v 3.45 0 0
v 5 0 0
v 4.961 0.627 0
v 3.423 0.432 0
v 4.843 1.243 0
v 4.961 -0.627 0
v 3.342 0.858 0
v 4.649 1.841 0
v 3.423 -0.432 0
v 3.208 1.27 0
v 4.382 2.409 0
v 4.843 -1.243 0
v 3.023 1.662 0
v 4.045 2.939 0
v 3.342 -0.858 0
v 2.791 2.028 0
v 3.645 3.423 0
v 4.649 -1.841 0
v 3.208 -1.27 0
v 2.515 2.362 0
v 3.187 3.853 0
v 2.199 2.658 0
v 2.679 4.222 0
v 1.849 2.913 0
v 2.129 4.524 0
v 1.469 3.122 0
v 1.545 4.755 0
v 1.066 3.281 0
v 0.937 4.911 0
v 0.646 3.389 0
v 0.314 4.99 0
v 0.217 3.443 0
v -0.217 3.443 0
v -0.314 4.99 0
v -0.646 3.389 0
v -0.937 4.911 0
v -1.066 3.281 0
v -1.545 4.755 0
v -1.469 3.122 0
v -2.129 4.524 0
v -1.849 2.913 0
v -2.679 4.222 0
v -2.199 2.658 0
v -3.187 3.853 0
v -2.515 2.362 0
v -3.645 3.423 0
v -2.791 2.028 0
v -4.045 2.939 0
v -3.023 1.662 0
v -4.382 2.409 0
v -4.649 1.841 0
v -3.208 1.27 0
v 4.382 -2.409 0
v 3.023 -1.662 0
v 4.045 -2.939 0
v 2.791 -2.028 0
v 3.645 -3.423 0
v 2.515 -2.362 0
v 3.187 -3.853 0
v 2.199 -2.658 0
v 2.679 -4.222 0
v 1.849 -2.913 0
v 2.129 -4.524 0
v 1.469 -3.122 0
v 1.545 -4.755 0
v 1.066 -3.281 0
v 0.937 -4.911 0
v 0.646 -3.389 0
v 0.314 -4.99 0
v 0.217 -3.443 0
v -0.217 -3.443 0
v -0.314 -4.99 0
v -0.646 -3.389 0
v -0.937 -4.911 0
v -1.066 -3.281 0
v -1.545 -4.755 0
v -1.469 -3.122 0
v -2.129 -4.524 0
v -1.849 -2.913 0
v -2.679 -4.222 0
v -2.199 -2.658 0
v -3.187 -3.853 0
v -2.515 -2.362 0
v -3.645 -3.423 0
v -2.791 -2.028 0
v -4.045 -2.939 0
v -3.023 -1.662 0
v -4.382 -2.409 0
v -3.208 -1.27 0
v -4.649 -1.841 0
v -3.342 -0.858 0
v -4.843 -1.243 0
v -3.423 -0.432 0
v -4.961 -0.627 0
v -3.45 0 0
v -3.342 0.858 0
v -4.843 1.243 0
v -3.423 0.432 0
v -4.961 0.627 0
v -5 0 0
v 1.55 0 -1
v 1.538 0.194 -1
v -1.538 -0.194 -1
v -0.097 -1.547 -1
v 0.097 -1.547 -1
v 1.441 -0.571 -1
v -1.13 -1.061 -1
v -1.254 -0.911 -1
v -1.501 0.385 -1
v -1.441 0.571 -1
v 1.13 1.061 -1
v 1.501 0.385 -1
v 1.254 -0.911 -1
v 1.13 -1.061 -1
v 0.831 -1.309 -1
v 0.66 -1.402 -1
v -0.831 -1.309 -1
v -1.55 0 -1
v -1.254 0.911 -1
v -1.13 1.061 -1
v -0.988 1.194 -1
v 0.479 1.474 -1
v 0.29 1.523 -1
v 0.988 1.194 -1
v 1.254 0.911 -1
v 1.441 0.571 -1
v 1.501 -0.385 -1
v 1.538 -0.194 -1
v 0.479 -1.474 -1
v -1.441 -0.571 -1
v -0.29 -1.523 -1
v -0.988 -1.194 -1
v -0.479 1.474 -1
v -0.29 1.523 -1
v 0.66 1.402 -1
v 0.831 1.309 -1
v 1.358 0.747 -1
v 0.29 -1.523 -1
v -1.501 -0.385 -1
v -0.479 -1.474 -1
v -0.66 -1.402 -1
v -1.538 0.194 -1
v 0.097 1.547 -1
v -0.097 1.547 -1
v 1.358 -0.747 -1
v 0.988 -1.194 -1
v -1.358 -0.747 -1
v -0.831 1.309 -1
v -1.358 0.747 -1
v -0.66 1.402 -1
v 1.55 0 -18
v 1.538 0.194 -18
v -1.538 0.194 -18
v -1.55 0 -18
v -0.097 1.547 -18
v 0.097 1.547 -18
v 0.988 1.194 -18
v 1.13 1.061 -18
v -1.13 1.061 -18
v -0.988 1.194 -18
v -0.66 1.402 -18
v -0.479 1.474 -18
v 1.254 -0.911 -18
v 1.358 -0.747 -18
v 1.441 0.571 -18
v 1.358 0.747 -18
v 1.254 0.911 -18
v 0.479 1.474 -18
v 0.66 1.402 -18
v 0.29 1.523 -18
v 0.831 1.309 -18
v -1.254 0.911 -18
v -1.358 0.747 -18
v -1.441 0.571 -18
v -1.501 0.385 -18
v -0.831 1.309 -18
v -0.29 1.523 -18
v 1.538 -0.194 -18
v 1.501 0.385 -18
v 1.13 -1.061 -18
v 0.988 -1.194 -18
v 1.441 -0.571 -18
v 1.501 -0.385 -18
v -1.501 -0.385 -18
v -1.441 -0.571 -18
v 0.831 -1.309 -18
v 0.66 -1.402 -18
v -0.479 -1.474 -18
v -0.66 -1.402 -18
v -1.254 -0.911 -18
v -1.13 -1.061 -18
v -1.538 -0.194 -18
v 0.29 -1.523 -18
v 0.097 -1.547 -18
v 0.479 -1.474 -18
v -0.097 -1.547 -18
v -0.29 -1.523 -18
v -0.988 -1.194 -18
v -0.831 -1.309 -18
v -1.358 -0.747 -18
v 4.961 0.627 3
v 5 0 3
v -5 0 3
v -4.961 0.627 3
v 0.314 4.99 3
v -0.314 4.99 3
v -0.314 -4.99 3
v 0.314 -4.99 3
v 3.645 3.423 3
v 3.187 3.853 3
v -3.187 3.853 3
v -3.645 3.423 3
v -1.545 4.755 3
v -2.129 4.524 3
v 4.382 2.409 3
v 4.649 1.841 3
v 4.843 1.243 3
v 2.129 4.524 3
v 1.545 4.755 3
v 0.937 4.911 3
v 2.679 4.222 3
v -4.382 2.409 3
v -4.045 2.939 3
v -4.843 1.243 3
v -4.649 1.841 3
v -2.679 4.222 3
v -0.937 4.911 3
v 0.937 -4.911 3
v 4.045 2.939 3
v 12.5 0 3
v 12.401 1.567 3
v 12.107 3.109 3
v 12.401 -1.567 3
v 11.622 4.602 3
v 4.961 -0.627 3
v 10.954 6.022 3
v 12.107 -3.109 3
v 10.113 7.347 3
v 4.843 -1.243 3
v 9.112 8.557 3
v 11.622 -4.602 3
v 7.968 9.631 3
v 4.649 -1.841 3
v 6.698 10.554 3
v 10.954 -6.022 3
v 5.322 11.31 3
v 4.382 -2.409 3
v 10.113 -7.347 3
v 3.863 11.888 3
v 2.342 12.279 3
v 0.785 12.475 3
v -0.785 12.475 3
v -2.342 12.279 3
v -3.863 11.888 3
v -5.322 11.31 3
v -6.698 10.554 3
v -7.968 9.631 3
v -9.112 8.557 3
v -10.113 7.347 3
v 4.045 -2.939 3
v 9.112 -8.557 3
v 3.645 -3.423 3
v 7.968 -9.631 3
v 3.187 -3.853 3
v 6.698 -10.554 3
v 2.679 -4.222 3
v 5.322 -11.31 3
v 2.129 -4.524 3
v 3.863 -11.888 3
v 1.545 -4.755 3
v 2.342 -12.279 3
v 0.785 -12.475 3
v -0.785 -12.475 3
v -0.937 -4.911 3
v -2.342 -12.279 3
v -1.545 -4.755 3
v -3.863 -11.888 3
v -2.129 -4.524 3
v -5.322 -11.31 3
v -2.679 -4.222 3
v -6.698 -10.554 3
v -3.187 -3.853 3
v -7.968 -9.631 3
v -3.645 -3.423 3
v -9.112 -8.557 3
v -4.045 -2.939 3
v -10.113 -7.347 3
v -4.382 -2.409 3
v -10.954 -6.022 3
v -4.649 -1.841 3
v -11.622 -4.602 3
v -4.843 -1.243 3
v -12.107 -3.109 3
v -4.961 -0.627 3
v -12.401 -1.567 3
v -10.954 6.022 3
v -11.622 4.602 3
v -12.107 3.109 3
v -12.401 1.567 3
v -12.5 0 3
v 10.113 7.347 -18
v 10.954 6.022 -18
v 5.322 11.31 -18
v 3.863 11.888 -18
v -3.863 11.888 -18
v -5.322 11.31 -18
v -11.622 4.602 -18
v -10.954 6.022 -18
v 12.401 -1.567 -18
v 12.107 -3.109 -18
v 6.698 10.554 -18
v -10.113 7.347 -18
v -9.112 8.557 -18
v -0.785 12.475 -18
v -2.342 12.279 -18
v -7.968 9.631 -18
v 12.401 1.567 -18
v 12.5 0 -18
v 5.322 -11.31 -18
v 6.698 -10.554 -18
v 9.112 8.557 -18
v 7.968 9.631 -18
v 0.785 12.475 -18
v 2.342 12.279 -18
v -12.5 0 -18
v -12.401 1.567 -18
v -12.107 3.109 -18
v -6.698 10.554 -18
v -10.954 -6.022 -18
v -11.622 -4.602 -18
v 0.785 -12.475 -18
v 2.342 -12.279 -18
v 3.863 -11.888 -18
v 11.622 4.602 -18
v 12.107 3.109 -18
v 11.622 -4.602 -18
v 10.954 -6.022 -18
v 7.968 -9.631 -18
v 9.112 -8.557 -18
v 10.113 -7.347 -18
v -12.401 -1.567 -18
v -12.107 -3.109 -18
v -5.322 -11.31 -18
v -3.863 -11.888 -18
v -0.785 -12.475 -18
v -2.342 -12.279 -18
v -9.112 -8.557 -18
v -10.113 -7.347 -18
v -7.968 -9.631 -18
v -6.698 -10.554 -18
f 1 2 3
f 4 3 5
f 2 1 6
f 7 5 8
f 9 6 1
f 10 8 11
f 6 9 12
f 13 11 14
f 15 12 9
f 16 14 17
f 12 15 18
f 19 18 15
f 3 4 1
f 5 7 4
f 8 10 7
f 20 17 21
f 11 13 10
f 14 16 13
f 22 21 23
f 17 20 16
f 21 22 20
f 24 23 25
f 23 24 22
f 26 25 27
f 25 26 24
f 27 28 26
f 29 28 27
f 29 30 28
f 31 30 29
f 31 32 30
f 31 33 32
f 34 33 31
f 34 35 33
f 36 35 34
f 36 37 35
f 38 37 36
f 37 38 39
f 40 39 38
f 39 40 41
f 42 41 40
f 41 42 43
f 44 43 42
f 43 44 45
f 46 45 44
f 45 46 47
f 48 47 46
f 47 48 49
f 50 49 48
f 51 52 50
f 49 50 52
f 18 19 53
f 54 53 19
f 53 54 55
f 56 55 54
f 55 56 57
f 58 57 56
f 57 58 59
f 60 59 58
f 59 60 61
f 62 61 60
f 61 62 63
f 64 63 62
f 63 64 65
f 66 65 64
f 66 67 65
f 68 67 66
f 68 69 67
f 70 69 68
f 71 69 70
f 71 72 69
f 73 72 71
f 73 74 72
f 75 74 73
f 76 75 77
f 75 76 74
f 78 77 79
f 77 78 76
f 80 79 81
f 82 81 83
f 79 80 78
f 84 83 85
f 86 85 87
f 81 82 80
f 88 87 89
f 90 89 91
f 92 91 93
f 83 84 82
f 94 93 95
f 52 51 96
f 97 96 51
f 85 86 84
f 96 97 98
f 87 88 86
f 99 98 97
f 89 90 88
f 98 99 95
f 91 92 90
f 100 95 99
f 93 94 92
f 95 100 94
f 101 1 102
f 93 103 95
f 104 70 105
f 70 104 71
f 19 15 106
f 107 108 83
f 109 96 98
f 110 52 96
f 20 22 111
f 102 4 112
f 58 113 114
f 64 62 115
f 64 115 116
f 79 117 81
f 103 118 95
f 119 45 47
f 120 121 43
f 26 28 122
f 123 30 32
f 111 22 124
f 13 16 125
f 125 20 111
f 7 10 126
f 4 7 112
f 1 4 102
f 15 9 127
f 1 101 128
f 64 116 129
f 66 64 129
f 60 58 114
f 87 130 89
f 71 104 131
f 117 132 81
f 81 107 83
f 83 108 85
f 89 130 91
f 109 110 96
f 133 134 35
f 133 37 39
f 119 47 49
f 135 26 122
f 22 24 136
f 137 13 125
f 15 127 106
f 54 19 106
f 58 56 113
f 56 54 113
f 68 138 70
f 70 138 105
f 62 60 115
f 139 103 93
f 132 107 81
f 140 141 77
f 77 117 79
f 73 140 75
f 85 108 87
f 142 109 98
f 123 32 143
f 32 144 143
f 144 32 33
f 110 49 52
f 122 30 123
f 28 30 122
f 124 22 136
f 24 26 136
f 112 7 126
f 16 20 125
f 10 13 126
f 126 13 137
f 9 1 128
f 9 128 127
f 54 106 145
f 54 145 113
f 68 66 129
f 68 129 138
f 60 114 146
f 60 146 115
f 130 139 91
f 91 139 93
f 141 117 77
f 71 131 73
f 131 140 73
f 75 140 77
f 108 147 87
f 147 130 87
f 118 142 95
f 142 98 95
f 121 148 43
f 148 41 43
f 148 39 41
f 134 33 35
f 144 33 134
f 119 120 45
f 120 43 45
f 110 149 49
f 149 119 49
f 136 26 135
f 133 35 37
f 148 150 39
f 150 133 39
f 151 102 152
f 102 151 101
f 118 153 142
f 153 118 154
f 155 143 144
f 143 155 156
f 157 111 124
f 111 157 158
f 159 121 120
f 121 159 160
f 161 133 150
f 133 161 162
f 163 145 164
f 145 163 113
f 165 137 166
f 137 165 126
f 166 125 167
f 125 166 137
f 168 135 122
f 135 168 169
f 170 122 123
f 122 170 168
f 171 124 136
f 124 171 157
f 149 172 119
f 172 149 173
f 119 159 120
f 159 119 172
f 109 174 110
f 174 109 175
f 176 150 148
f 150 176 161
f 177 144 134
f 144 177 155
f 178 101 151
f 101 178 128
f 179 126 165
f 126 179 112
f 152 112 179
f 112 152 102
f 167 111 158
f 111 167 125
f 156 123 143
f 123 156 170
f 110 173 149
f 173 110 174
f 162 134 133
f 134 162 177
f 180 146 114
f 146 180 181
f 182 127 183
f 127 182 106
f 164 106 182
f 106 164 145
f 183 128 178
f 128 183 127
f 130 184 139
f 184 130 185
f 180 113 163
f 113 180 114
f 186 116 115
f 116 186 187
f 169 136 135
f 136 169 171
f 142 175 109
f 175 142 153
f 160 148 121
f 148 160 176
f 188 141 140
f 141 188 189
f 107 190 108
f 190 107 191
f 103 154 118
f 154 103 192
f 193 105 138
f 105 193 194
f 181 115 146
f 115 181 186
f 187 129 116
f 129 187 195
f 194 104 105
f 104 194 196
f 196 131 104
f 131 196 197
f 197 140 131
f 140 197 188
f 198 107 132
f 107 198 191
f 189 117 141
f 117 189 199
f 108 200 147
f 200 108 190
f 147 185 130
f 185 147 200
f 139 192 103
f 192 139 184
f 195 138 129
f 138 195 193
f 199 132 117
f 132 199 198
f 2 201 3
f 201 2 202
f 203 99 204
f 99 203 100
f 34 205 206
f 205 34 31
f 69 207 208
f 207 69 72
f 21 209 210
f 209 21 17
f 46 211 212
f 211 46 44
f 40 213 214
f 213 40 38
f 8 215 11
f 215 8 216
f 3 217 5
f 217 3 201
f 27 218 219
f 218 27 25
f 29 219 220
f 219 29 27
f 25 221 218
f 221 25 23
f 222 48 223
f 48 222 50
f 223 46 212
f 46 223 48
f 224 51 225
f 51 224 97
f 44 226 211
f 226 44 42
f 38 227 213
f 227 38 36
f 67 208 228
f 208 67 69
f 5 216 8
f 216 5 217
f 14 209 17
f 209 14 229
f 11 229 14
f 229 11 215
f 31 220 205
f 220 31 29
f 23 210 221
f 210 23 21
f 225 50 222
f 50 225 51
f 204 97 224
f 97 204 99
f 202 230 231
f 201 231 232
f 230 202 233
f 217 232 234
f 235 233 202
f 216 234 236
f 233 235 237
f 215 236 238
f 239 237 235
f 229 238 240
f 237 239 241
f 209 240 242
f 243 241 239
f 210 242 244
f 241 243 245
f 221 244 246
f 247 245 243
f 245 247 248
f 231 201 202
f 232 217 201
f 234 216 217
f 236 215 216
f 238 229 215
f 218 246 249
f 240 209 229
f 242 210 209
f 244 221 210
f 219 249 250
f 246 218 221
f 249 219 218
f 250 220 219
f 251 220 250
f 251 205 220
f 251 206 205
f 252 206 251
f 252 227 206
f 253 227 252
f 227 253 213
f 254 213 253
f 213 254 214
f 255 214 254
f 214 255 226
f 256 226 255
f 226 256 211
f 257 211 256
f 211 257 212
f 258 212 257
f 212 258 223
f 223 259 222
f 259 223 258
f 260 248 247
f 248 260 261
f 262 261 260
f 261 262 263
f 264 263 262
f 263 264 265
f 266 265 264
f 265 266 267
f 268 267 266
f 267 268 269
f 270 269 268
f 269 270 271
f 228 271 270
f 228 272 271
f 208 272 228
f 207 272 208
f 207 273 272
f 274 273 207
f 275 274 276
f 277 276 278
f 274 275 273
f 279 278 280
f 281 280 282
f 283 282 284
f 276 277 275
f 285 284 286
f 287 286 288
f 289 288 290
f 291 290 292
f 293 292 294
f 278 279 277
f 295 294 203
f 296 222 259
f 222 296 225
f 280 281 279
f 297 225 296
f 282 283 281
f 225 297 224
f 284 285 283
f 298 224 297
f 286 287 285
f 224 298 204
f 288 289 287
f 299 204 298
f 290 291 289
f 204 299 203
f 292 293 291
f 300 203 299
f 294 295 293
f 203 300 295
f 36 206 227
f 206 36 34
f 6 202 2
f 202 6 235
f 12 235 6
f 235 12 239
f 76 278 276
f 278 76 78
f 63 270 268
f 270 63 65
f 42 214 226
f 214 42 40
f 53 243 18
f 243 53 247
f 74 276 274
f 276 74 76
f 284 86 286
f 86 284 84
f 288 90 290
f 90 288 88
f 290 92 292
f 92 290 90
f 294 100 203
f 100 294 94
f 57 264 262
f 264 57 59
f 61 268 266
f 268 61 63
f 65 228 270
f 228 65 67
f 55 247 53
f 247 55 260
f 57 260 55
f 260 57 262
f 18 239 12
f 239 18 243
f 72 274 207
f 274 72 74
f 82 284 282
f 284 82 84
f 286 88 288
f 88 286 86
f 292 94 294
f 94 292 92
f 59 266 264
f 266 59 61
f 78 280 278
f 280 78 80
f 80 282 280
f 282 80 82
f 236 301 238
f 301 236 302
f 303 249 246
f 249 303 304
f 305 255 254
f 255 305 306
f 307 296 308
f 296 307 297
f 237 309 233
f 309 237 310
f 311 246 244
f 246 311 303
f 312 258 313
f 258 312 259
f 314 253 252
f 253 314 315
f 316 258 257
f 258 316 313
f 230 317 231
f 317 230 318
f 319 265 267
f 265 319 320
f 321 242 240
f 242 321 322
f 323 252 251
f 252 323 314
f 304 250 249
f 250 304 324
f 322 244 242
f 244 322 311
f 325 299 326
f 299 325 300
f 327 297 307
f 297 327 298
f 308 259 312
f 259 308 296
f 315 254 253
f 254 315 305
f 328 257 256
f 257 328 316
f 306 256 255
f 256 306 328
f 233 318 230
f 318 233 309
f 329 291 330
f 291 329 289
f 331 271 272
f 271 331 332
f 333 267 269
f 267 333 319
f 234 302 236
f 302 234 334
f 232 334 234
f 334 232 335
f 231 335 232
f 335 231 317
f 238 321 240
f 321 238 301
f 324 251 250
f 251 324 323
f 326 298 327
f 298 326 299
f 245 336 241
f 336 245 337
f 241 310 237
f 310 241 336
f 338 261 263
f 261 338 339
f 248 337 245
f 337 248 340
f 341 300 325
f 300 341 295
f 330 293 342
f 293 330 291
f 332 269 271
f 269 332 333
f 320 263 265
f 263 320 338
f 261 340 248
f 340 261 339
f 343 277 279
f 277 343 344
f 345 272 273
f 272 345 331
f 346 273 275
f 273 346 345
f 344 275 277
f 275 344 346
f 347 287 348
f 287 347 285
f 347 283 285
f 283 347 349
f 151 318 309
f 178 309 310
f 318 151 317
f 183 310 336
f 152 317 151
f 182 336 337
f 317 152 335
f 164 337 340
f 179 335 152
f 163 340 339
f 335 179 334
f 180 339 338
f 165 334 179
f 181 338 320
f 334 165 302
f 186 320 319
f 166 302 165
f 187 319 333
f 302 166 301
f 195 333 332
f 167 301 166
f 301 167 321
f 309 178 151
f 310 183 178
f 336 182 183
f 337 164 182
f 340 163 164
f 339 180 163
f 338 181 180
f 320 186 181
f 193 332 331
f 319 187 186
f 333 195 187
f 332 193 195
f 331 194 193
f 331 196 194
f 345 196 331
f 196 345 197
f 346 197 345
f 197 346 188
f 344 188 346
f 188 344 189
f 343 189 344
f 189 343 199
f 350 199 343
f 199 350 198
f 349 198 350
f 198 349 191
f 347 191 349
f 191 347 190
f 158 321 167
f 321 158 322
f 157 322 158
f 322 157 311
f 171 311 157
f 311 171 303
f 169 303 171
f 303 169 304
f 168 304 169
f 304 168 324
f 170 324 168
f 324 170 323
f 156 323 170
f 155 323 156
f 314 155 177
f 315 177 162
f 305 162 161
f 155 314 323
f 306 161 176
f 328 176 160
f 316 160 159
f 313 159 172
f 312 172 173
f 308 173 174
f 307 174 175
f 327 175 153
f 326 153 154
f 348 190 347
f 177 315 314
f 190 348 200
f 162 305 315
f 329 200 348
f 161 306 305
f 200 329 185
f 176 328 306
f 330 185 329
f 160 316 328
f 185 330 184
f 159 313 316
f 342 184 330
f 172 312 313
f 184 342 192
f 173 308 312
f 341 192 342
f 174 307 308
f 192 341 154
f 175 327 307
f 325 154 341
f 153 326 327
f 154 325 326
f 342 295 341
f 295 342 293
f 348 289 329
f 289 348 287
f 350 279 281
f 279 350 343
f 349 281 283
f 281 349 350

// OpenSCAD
$fn = 50;


difference() {
	union() {
		translate(v = [0, 0, -18.0000000000]) {
			cylinder(h = 21, r = 12.5000000000);
		}
	}
	union() {
		translate(v = [0, 0, 0]) {
			rotate(a = [0, 0, 0]) {
				difference() {
					union() {
						translate(v = [0, 0, -21.0000000000]) {
							cylinder(h = 21, r = 1.2500000000);
						}
						translate(v = [0, 0, -1.0000000000]) {
							cylinder(h = 1.0000000000, r1 = 1.5500000000, r2 = 3.4500000000);
						}
						translate(v = [0, 0, -21.0000000000]) {
							cylinder(h = 21, r = 1.5500000000);
						}
						translate(v = [0, 0, -21.0000000000]) {
							cylinder(h = 21, r = 1.2500000000);
						}
					}
					union();
				}
			}
		}
		#cylinder(h = 3, r = 5.0000000000);
	}
}
